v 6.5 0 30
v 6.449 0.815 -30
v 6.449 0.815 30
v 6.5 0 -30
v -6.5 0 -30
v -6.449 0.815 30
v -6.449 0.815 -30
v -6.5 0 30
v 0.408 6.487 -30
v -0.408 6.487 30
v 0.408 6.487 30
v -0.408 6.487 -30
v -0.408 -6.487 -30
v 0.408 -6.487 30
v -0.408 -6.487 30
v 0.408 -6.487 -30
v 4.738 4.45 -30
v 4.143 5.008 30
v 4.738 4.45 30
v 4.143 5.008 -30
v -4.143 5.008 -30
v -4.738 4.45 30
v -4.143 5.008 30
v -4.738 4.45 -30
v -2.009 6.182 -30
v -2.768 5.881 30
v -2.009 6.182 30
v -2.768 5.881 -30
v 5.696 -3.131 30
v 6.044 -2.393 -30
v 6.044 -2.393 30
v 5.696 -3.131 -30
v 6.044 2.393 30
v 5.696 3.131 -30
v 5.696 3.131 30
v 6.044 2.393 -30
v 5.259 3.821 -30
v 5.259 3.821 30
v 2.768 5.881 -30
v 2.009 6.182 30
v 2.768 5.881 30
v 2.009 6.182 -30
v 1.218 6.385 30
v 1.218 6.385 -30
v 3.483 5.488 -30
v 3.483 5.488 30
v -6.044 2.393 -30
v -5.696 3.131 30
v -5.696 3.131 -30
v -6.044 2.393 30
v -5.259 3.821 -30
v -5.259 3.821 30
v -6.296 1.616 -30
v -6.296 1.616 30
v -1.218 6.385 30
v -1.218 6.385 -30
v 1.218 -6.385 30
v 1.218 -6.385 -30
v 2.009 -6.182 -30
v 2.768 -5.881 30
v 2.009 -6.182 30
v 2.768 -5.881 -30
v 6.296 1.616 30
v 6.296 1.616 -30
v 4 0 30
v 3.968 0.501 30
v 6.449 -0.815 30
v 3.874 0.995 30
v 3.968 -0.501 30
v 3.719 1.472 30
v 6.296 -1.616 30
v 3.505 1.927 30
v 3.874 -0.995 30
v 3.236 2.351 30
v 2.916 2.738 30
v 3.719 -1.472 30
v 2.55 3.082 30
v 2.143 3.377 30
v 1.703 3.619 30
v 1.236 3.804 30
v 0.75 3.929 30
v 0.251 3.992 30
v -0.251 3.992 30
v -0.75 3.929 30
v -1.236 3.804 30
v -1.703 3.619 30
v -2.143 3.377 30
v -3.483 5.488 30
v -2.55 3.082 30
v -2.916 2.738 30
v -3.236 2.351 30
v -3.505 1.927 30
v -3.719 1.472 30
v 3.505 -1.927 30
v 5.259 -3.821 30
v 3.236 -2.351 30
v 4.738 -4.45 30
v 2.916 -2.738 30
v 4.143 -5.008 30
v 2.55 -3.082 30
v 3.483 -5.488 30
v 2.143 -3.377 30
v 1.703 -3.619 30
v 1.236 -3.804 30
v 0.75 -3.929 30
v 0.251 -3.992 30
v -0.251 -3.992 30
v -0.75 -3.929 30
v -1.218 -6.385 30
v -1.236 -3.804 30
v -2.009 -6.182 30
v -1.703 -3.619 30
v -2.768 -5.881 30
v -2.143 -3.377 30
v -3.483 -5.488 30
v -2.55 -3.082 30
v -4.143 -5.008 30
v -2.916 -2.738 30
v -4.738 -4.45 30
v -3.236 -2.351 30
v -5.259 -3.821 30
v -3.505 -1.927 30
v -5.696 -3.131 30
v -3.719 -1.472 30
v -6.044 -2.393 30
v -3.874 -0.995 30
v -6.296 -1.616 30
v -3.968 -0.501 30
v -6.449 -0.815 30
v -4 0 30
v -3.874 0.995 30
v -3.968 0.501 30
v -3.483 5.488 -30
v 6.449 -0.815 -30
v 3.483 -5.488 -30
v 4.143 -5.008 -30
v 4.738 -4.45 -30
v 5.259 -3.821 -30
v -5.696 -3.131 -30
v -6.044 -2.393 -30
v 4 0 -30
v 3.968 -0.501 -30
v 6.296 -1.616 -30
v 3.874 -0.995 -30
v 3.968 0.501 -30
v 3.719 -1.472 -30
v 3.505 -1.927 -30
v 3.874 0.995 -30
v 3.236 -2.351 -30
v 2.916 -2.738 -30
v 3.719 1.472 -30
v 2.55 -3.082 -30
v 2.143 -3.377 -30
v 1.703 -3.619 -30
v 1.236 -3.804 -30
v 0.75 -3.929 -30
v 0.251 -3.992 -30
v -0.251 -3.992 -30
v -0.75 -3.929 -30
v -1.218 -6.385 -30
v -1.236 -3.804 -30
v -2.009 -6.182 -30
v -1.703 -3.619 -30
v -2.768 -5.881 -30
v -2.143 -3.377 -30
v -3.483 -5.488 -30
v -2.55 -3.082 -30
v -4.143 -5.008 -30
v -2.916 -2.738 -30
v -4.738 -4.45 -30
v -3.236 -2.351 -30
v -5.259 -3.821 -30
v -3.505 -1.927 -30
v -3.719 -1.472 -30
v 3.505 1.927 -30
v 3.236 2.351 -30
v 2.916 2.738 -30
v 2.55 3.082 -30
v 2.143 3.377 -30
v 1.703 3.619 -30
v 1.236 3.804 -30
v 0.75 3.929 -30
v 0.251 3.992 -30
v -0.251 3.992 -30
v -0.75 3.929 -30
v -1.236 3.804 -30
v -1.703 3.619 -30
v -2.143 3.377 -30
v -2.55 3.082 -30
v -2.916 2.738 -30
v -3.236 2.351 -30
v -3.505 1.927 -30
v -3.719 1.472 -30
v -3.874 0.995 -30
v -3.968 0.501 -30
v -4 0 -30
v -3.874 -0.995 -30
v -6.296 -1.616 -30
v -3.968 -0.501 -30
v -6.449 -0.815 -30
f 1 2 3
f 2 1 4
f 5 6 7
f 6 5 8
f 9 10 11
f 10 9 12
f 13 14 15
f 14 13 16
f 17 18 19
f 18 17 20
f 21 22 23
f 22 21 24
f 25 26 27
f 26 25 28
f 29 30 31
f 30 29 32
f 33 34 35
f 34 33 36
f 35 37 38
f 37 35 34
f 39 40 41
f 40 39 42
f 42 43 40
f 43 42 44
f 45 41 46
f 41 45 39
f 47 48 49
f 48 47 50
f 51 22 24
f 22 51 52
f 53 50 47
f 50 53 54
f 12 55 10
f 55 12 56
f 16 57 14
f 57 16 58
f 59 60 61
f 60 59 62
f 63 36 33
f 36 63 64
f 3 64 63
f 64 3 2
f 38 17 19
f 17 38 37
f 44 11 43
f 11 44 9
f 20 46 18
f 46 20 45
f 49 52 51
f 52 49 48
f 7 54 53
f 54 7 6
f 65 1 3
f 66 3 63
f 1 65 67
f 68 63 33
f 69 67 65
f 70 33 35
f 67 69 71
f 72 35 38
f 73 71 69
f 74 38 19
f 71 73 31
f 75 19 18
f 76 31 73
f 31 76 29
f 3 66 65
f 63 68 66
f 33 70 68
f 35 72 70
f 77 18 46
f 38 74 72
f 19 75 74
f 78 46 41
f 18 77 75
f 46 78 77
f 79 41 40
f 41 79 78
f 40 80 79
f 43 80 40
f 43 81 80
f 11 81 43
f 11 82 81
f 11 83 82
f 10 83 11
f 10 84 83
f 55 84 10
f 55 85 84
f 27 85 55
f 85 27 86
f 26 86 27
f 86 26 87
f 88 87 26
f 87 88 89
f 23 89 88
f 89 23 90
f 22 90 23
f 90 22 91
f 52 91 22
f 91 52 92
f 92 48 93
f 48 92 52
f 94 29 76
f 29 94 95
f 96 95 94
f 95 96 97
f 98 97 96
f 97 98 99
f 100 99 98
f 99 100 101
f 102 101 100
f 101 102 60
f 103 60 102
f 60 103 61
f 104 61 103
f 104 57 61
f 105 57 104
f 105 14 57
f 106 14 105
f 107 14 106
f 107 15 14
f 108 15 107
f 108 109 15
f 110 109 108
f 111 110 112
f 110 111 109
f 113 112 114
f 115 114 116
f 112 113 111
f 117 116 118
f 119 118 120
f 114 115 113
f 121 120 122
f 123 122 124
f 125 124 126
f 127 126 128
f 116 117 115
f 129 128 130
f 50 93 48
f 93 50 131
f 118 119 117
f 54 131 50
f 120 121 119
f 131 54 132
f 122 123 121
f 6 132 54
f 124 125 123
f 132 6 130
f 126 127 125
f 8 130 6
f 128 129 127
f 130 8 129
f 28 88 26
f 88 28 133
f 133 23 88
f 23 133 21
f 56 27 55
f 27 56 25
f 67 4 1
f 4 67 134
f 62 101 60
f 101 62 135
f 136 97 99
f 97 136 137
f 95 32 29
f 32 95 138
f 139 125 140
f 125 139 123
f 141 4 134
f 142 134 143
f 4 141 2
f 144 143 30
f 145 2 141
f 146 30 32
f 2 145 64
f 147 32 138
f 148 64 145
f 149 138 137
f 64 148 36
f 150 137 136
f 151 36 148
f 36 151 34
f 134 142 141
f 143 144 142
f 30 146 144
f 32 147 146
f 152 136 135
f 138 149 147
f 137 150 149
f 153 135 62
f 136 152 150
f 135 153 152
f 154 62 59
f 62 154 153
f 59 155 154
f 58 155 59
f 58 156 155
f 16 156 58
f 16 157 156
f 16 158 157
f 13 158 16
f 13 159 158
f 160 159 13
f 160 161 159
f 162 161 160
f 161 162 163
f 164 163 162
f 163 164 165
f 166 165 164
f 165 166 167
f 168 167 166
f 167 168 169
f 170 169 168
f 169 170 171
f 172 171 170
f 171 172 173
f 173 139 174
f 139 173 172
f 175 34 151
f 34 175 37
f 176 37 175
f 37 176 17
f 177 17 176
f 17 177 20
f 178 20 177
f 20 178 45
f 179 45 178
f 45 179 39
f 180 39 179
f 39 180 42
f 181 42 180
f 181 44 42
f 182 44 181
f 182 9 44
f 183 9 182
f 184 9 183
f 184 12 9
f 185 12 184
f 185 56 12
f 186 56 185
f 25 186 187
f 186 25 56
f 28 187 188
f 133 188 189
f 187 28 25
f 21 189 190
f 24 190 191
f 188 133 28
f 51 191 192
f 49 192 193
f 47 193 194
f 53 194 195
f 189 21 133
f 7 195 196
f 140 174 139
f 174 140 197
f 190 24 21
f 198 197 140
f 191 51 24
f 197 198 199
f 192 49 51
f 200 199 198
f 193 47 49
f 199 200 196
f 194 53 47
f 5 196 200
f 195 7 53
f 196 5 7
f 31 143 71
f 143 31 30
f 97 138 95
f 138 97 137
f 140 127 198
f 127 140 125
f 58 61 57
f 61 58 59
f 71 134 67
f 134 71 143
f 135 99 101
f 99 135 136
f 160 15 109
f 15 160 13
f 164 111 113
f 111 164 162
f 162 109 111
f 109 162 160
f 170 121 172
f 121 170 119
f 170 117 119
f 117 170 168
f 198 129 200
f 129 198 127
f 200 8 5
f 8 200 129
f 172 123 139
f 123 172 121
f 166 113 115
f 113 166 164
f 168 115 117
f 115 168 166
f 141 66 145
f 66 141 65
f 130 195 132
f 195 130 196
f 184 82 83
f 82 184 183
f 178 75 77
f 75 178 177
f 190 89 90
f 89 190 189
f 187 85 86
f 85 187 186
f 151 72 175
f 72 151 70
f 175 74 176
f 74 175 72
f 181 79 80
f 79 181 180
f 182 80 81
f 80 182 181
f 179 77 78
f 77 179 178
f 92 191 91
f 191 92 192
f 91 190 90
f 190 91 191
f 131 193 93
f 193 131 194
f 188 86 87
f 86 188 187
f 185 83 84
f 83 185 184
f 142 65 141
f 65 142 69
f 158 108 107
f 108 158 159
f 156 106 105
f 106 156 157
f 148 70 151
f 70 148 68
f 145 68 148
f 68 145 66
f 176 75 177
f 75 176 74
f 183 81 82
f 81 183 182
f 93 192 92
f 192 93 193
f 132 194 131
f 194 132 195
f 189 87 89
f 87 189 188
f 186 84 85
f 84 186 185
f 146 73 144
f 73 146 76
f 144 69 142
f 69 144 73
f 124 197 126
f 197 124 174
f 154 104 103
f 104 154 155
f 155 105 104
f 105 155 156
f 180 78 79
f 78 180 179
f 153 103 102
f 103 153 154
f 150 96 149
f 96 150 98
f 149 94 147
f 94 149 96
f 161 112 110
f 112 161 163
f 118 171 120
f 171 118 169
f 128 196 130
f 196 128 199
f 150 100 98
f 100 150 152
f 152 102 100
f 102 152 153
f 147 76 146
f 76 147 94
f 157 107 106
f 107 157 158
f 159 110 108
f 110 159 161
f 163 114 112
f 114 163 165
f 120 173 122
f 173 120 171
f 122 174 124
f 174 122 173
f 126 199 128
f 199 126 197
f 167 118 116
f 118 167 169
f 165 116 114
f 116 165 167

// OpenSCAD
$fn = 50;


difference() {
	union() {
		translate(v = [0, 0, -30.0000000000]) {
			cylinder(h = 60, r = 6.5000000000);
		}
	}
	union() {
		translate(v = [0, 0, -100.0000000000]) {
			cylinder(h = 200, r = 4);
		}
	}
}
